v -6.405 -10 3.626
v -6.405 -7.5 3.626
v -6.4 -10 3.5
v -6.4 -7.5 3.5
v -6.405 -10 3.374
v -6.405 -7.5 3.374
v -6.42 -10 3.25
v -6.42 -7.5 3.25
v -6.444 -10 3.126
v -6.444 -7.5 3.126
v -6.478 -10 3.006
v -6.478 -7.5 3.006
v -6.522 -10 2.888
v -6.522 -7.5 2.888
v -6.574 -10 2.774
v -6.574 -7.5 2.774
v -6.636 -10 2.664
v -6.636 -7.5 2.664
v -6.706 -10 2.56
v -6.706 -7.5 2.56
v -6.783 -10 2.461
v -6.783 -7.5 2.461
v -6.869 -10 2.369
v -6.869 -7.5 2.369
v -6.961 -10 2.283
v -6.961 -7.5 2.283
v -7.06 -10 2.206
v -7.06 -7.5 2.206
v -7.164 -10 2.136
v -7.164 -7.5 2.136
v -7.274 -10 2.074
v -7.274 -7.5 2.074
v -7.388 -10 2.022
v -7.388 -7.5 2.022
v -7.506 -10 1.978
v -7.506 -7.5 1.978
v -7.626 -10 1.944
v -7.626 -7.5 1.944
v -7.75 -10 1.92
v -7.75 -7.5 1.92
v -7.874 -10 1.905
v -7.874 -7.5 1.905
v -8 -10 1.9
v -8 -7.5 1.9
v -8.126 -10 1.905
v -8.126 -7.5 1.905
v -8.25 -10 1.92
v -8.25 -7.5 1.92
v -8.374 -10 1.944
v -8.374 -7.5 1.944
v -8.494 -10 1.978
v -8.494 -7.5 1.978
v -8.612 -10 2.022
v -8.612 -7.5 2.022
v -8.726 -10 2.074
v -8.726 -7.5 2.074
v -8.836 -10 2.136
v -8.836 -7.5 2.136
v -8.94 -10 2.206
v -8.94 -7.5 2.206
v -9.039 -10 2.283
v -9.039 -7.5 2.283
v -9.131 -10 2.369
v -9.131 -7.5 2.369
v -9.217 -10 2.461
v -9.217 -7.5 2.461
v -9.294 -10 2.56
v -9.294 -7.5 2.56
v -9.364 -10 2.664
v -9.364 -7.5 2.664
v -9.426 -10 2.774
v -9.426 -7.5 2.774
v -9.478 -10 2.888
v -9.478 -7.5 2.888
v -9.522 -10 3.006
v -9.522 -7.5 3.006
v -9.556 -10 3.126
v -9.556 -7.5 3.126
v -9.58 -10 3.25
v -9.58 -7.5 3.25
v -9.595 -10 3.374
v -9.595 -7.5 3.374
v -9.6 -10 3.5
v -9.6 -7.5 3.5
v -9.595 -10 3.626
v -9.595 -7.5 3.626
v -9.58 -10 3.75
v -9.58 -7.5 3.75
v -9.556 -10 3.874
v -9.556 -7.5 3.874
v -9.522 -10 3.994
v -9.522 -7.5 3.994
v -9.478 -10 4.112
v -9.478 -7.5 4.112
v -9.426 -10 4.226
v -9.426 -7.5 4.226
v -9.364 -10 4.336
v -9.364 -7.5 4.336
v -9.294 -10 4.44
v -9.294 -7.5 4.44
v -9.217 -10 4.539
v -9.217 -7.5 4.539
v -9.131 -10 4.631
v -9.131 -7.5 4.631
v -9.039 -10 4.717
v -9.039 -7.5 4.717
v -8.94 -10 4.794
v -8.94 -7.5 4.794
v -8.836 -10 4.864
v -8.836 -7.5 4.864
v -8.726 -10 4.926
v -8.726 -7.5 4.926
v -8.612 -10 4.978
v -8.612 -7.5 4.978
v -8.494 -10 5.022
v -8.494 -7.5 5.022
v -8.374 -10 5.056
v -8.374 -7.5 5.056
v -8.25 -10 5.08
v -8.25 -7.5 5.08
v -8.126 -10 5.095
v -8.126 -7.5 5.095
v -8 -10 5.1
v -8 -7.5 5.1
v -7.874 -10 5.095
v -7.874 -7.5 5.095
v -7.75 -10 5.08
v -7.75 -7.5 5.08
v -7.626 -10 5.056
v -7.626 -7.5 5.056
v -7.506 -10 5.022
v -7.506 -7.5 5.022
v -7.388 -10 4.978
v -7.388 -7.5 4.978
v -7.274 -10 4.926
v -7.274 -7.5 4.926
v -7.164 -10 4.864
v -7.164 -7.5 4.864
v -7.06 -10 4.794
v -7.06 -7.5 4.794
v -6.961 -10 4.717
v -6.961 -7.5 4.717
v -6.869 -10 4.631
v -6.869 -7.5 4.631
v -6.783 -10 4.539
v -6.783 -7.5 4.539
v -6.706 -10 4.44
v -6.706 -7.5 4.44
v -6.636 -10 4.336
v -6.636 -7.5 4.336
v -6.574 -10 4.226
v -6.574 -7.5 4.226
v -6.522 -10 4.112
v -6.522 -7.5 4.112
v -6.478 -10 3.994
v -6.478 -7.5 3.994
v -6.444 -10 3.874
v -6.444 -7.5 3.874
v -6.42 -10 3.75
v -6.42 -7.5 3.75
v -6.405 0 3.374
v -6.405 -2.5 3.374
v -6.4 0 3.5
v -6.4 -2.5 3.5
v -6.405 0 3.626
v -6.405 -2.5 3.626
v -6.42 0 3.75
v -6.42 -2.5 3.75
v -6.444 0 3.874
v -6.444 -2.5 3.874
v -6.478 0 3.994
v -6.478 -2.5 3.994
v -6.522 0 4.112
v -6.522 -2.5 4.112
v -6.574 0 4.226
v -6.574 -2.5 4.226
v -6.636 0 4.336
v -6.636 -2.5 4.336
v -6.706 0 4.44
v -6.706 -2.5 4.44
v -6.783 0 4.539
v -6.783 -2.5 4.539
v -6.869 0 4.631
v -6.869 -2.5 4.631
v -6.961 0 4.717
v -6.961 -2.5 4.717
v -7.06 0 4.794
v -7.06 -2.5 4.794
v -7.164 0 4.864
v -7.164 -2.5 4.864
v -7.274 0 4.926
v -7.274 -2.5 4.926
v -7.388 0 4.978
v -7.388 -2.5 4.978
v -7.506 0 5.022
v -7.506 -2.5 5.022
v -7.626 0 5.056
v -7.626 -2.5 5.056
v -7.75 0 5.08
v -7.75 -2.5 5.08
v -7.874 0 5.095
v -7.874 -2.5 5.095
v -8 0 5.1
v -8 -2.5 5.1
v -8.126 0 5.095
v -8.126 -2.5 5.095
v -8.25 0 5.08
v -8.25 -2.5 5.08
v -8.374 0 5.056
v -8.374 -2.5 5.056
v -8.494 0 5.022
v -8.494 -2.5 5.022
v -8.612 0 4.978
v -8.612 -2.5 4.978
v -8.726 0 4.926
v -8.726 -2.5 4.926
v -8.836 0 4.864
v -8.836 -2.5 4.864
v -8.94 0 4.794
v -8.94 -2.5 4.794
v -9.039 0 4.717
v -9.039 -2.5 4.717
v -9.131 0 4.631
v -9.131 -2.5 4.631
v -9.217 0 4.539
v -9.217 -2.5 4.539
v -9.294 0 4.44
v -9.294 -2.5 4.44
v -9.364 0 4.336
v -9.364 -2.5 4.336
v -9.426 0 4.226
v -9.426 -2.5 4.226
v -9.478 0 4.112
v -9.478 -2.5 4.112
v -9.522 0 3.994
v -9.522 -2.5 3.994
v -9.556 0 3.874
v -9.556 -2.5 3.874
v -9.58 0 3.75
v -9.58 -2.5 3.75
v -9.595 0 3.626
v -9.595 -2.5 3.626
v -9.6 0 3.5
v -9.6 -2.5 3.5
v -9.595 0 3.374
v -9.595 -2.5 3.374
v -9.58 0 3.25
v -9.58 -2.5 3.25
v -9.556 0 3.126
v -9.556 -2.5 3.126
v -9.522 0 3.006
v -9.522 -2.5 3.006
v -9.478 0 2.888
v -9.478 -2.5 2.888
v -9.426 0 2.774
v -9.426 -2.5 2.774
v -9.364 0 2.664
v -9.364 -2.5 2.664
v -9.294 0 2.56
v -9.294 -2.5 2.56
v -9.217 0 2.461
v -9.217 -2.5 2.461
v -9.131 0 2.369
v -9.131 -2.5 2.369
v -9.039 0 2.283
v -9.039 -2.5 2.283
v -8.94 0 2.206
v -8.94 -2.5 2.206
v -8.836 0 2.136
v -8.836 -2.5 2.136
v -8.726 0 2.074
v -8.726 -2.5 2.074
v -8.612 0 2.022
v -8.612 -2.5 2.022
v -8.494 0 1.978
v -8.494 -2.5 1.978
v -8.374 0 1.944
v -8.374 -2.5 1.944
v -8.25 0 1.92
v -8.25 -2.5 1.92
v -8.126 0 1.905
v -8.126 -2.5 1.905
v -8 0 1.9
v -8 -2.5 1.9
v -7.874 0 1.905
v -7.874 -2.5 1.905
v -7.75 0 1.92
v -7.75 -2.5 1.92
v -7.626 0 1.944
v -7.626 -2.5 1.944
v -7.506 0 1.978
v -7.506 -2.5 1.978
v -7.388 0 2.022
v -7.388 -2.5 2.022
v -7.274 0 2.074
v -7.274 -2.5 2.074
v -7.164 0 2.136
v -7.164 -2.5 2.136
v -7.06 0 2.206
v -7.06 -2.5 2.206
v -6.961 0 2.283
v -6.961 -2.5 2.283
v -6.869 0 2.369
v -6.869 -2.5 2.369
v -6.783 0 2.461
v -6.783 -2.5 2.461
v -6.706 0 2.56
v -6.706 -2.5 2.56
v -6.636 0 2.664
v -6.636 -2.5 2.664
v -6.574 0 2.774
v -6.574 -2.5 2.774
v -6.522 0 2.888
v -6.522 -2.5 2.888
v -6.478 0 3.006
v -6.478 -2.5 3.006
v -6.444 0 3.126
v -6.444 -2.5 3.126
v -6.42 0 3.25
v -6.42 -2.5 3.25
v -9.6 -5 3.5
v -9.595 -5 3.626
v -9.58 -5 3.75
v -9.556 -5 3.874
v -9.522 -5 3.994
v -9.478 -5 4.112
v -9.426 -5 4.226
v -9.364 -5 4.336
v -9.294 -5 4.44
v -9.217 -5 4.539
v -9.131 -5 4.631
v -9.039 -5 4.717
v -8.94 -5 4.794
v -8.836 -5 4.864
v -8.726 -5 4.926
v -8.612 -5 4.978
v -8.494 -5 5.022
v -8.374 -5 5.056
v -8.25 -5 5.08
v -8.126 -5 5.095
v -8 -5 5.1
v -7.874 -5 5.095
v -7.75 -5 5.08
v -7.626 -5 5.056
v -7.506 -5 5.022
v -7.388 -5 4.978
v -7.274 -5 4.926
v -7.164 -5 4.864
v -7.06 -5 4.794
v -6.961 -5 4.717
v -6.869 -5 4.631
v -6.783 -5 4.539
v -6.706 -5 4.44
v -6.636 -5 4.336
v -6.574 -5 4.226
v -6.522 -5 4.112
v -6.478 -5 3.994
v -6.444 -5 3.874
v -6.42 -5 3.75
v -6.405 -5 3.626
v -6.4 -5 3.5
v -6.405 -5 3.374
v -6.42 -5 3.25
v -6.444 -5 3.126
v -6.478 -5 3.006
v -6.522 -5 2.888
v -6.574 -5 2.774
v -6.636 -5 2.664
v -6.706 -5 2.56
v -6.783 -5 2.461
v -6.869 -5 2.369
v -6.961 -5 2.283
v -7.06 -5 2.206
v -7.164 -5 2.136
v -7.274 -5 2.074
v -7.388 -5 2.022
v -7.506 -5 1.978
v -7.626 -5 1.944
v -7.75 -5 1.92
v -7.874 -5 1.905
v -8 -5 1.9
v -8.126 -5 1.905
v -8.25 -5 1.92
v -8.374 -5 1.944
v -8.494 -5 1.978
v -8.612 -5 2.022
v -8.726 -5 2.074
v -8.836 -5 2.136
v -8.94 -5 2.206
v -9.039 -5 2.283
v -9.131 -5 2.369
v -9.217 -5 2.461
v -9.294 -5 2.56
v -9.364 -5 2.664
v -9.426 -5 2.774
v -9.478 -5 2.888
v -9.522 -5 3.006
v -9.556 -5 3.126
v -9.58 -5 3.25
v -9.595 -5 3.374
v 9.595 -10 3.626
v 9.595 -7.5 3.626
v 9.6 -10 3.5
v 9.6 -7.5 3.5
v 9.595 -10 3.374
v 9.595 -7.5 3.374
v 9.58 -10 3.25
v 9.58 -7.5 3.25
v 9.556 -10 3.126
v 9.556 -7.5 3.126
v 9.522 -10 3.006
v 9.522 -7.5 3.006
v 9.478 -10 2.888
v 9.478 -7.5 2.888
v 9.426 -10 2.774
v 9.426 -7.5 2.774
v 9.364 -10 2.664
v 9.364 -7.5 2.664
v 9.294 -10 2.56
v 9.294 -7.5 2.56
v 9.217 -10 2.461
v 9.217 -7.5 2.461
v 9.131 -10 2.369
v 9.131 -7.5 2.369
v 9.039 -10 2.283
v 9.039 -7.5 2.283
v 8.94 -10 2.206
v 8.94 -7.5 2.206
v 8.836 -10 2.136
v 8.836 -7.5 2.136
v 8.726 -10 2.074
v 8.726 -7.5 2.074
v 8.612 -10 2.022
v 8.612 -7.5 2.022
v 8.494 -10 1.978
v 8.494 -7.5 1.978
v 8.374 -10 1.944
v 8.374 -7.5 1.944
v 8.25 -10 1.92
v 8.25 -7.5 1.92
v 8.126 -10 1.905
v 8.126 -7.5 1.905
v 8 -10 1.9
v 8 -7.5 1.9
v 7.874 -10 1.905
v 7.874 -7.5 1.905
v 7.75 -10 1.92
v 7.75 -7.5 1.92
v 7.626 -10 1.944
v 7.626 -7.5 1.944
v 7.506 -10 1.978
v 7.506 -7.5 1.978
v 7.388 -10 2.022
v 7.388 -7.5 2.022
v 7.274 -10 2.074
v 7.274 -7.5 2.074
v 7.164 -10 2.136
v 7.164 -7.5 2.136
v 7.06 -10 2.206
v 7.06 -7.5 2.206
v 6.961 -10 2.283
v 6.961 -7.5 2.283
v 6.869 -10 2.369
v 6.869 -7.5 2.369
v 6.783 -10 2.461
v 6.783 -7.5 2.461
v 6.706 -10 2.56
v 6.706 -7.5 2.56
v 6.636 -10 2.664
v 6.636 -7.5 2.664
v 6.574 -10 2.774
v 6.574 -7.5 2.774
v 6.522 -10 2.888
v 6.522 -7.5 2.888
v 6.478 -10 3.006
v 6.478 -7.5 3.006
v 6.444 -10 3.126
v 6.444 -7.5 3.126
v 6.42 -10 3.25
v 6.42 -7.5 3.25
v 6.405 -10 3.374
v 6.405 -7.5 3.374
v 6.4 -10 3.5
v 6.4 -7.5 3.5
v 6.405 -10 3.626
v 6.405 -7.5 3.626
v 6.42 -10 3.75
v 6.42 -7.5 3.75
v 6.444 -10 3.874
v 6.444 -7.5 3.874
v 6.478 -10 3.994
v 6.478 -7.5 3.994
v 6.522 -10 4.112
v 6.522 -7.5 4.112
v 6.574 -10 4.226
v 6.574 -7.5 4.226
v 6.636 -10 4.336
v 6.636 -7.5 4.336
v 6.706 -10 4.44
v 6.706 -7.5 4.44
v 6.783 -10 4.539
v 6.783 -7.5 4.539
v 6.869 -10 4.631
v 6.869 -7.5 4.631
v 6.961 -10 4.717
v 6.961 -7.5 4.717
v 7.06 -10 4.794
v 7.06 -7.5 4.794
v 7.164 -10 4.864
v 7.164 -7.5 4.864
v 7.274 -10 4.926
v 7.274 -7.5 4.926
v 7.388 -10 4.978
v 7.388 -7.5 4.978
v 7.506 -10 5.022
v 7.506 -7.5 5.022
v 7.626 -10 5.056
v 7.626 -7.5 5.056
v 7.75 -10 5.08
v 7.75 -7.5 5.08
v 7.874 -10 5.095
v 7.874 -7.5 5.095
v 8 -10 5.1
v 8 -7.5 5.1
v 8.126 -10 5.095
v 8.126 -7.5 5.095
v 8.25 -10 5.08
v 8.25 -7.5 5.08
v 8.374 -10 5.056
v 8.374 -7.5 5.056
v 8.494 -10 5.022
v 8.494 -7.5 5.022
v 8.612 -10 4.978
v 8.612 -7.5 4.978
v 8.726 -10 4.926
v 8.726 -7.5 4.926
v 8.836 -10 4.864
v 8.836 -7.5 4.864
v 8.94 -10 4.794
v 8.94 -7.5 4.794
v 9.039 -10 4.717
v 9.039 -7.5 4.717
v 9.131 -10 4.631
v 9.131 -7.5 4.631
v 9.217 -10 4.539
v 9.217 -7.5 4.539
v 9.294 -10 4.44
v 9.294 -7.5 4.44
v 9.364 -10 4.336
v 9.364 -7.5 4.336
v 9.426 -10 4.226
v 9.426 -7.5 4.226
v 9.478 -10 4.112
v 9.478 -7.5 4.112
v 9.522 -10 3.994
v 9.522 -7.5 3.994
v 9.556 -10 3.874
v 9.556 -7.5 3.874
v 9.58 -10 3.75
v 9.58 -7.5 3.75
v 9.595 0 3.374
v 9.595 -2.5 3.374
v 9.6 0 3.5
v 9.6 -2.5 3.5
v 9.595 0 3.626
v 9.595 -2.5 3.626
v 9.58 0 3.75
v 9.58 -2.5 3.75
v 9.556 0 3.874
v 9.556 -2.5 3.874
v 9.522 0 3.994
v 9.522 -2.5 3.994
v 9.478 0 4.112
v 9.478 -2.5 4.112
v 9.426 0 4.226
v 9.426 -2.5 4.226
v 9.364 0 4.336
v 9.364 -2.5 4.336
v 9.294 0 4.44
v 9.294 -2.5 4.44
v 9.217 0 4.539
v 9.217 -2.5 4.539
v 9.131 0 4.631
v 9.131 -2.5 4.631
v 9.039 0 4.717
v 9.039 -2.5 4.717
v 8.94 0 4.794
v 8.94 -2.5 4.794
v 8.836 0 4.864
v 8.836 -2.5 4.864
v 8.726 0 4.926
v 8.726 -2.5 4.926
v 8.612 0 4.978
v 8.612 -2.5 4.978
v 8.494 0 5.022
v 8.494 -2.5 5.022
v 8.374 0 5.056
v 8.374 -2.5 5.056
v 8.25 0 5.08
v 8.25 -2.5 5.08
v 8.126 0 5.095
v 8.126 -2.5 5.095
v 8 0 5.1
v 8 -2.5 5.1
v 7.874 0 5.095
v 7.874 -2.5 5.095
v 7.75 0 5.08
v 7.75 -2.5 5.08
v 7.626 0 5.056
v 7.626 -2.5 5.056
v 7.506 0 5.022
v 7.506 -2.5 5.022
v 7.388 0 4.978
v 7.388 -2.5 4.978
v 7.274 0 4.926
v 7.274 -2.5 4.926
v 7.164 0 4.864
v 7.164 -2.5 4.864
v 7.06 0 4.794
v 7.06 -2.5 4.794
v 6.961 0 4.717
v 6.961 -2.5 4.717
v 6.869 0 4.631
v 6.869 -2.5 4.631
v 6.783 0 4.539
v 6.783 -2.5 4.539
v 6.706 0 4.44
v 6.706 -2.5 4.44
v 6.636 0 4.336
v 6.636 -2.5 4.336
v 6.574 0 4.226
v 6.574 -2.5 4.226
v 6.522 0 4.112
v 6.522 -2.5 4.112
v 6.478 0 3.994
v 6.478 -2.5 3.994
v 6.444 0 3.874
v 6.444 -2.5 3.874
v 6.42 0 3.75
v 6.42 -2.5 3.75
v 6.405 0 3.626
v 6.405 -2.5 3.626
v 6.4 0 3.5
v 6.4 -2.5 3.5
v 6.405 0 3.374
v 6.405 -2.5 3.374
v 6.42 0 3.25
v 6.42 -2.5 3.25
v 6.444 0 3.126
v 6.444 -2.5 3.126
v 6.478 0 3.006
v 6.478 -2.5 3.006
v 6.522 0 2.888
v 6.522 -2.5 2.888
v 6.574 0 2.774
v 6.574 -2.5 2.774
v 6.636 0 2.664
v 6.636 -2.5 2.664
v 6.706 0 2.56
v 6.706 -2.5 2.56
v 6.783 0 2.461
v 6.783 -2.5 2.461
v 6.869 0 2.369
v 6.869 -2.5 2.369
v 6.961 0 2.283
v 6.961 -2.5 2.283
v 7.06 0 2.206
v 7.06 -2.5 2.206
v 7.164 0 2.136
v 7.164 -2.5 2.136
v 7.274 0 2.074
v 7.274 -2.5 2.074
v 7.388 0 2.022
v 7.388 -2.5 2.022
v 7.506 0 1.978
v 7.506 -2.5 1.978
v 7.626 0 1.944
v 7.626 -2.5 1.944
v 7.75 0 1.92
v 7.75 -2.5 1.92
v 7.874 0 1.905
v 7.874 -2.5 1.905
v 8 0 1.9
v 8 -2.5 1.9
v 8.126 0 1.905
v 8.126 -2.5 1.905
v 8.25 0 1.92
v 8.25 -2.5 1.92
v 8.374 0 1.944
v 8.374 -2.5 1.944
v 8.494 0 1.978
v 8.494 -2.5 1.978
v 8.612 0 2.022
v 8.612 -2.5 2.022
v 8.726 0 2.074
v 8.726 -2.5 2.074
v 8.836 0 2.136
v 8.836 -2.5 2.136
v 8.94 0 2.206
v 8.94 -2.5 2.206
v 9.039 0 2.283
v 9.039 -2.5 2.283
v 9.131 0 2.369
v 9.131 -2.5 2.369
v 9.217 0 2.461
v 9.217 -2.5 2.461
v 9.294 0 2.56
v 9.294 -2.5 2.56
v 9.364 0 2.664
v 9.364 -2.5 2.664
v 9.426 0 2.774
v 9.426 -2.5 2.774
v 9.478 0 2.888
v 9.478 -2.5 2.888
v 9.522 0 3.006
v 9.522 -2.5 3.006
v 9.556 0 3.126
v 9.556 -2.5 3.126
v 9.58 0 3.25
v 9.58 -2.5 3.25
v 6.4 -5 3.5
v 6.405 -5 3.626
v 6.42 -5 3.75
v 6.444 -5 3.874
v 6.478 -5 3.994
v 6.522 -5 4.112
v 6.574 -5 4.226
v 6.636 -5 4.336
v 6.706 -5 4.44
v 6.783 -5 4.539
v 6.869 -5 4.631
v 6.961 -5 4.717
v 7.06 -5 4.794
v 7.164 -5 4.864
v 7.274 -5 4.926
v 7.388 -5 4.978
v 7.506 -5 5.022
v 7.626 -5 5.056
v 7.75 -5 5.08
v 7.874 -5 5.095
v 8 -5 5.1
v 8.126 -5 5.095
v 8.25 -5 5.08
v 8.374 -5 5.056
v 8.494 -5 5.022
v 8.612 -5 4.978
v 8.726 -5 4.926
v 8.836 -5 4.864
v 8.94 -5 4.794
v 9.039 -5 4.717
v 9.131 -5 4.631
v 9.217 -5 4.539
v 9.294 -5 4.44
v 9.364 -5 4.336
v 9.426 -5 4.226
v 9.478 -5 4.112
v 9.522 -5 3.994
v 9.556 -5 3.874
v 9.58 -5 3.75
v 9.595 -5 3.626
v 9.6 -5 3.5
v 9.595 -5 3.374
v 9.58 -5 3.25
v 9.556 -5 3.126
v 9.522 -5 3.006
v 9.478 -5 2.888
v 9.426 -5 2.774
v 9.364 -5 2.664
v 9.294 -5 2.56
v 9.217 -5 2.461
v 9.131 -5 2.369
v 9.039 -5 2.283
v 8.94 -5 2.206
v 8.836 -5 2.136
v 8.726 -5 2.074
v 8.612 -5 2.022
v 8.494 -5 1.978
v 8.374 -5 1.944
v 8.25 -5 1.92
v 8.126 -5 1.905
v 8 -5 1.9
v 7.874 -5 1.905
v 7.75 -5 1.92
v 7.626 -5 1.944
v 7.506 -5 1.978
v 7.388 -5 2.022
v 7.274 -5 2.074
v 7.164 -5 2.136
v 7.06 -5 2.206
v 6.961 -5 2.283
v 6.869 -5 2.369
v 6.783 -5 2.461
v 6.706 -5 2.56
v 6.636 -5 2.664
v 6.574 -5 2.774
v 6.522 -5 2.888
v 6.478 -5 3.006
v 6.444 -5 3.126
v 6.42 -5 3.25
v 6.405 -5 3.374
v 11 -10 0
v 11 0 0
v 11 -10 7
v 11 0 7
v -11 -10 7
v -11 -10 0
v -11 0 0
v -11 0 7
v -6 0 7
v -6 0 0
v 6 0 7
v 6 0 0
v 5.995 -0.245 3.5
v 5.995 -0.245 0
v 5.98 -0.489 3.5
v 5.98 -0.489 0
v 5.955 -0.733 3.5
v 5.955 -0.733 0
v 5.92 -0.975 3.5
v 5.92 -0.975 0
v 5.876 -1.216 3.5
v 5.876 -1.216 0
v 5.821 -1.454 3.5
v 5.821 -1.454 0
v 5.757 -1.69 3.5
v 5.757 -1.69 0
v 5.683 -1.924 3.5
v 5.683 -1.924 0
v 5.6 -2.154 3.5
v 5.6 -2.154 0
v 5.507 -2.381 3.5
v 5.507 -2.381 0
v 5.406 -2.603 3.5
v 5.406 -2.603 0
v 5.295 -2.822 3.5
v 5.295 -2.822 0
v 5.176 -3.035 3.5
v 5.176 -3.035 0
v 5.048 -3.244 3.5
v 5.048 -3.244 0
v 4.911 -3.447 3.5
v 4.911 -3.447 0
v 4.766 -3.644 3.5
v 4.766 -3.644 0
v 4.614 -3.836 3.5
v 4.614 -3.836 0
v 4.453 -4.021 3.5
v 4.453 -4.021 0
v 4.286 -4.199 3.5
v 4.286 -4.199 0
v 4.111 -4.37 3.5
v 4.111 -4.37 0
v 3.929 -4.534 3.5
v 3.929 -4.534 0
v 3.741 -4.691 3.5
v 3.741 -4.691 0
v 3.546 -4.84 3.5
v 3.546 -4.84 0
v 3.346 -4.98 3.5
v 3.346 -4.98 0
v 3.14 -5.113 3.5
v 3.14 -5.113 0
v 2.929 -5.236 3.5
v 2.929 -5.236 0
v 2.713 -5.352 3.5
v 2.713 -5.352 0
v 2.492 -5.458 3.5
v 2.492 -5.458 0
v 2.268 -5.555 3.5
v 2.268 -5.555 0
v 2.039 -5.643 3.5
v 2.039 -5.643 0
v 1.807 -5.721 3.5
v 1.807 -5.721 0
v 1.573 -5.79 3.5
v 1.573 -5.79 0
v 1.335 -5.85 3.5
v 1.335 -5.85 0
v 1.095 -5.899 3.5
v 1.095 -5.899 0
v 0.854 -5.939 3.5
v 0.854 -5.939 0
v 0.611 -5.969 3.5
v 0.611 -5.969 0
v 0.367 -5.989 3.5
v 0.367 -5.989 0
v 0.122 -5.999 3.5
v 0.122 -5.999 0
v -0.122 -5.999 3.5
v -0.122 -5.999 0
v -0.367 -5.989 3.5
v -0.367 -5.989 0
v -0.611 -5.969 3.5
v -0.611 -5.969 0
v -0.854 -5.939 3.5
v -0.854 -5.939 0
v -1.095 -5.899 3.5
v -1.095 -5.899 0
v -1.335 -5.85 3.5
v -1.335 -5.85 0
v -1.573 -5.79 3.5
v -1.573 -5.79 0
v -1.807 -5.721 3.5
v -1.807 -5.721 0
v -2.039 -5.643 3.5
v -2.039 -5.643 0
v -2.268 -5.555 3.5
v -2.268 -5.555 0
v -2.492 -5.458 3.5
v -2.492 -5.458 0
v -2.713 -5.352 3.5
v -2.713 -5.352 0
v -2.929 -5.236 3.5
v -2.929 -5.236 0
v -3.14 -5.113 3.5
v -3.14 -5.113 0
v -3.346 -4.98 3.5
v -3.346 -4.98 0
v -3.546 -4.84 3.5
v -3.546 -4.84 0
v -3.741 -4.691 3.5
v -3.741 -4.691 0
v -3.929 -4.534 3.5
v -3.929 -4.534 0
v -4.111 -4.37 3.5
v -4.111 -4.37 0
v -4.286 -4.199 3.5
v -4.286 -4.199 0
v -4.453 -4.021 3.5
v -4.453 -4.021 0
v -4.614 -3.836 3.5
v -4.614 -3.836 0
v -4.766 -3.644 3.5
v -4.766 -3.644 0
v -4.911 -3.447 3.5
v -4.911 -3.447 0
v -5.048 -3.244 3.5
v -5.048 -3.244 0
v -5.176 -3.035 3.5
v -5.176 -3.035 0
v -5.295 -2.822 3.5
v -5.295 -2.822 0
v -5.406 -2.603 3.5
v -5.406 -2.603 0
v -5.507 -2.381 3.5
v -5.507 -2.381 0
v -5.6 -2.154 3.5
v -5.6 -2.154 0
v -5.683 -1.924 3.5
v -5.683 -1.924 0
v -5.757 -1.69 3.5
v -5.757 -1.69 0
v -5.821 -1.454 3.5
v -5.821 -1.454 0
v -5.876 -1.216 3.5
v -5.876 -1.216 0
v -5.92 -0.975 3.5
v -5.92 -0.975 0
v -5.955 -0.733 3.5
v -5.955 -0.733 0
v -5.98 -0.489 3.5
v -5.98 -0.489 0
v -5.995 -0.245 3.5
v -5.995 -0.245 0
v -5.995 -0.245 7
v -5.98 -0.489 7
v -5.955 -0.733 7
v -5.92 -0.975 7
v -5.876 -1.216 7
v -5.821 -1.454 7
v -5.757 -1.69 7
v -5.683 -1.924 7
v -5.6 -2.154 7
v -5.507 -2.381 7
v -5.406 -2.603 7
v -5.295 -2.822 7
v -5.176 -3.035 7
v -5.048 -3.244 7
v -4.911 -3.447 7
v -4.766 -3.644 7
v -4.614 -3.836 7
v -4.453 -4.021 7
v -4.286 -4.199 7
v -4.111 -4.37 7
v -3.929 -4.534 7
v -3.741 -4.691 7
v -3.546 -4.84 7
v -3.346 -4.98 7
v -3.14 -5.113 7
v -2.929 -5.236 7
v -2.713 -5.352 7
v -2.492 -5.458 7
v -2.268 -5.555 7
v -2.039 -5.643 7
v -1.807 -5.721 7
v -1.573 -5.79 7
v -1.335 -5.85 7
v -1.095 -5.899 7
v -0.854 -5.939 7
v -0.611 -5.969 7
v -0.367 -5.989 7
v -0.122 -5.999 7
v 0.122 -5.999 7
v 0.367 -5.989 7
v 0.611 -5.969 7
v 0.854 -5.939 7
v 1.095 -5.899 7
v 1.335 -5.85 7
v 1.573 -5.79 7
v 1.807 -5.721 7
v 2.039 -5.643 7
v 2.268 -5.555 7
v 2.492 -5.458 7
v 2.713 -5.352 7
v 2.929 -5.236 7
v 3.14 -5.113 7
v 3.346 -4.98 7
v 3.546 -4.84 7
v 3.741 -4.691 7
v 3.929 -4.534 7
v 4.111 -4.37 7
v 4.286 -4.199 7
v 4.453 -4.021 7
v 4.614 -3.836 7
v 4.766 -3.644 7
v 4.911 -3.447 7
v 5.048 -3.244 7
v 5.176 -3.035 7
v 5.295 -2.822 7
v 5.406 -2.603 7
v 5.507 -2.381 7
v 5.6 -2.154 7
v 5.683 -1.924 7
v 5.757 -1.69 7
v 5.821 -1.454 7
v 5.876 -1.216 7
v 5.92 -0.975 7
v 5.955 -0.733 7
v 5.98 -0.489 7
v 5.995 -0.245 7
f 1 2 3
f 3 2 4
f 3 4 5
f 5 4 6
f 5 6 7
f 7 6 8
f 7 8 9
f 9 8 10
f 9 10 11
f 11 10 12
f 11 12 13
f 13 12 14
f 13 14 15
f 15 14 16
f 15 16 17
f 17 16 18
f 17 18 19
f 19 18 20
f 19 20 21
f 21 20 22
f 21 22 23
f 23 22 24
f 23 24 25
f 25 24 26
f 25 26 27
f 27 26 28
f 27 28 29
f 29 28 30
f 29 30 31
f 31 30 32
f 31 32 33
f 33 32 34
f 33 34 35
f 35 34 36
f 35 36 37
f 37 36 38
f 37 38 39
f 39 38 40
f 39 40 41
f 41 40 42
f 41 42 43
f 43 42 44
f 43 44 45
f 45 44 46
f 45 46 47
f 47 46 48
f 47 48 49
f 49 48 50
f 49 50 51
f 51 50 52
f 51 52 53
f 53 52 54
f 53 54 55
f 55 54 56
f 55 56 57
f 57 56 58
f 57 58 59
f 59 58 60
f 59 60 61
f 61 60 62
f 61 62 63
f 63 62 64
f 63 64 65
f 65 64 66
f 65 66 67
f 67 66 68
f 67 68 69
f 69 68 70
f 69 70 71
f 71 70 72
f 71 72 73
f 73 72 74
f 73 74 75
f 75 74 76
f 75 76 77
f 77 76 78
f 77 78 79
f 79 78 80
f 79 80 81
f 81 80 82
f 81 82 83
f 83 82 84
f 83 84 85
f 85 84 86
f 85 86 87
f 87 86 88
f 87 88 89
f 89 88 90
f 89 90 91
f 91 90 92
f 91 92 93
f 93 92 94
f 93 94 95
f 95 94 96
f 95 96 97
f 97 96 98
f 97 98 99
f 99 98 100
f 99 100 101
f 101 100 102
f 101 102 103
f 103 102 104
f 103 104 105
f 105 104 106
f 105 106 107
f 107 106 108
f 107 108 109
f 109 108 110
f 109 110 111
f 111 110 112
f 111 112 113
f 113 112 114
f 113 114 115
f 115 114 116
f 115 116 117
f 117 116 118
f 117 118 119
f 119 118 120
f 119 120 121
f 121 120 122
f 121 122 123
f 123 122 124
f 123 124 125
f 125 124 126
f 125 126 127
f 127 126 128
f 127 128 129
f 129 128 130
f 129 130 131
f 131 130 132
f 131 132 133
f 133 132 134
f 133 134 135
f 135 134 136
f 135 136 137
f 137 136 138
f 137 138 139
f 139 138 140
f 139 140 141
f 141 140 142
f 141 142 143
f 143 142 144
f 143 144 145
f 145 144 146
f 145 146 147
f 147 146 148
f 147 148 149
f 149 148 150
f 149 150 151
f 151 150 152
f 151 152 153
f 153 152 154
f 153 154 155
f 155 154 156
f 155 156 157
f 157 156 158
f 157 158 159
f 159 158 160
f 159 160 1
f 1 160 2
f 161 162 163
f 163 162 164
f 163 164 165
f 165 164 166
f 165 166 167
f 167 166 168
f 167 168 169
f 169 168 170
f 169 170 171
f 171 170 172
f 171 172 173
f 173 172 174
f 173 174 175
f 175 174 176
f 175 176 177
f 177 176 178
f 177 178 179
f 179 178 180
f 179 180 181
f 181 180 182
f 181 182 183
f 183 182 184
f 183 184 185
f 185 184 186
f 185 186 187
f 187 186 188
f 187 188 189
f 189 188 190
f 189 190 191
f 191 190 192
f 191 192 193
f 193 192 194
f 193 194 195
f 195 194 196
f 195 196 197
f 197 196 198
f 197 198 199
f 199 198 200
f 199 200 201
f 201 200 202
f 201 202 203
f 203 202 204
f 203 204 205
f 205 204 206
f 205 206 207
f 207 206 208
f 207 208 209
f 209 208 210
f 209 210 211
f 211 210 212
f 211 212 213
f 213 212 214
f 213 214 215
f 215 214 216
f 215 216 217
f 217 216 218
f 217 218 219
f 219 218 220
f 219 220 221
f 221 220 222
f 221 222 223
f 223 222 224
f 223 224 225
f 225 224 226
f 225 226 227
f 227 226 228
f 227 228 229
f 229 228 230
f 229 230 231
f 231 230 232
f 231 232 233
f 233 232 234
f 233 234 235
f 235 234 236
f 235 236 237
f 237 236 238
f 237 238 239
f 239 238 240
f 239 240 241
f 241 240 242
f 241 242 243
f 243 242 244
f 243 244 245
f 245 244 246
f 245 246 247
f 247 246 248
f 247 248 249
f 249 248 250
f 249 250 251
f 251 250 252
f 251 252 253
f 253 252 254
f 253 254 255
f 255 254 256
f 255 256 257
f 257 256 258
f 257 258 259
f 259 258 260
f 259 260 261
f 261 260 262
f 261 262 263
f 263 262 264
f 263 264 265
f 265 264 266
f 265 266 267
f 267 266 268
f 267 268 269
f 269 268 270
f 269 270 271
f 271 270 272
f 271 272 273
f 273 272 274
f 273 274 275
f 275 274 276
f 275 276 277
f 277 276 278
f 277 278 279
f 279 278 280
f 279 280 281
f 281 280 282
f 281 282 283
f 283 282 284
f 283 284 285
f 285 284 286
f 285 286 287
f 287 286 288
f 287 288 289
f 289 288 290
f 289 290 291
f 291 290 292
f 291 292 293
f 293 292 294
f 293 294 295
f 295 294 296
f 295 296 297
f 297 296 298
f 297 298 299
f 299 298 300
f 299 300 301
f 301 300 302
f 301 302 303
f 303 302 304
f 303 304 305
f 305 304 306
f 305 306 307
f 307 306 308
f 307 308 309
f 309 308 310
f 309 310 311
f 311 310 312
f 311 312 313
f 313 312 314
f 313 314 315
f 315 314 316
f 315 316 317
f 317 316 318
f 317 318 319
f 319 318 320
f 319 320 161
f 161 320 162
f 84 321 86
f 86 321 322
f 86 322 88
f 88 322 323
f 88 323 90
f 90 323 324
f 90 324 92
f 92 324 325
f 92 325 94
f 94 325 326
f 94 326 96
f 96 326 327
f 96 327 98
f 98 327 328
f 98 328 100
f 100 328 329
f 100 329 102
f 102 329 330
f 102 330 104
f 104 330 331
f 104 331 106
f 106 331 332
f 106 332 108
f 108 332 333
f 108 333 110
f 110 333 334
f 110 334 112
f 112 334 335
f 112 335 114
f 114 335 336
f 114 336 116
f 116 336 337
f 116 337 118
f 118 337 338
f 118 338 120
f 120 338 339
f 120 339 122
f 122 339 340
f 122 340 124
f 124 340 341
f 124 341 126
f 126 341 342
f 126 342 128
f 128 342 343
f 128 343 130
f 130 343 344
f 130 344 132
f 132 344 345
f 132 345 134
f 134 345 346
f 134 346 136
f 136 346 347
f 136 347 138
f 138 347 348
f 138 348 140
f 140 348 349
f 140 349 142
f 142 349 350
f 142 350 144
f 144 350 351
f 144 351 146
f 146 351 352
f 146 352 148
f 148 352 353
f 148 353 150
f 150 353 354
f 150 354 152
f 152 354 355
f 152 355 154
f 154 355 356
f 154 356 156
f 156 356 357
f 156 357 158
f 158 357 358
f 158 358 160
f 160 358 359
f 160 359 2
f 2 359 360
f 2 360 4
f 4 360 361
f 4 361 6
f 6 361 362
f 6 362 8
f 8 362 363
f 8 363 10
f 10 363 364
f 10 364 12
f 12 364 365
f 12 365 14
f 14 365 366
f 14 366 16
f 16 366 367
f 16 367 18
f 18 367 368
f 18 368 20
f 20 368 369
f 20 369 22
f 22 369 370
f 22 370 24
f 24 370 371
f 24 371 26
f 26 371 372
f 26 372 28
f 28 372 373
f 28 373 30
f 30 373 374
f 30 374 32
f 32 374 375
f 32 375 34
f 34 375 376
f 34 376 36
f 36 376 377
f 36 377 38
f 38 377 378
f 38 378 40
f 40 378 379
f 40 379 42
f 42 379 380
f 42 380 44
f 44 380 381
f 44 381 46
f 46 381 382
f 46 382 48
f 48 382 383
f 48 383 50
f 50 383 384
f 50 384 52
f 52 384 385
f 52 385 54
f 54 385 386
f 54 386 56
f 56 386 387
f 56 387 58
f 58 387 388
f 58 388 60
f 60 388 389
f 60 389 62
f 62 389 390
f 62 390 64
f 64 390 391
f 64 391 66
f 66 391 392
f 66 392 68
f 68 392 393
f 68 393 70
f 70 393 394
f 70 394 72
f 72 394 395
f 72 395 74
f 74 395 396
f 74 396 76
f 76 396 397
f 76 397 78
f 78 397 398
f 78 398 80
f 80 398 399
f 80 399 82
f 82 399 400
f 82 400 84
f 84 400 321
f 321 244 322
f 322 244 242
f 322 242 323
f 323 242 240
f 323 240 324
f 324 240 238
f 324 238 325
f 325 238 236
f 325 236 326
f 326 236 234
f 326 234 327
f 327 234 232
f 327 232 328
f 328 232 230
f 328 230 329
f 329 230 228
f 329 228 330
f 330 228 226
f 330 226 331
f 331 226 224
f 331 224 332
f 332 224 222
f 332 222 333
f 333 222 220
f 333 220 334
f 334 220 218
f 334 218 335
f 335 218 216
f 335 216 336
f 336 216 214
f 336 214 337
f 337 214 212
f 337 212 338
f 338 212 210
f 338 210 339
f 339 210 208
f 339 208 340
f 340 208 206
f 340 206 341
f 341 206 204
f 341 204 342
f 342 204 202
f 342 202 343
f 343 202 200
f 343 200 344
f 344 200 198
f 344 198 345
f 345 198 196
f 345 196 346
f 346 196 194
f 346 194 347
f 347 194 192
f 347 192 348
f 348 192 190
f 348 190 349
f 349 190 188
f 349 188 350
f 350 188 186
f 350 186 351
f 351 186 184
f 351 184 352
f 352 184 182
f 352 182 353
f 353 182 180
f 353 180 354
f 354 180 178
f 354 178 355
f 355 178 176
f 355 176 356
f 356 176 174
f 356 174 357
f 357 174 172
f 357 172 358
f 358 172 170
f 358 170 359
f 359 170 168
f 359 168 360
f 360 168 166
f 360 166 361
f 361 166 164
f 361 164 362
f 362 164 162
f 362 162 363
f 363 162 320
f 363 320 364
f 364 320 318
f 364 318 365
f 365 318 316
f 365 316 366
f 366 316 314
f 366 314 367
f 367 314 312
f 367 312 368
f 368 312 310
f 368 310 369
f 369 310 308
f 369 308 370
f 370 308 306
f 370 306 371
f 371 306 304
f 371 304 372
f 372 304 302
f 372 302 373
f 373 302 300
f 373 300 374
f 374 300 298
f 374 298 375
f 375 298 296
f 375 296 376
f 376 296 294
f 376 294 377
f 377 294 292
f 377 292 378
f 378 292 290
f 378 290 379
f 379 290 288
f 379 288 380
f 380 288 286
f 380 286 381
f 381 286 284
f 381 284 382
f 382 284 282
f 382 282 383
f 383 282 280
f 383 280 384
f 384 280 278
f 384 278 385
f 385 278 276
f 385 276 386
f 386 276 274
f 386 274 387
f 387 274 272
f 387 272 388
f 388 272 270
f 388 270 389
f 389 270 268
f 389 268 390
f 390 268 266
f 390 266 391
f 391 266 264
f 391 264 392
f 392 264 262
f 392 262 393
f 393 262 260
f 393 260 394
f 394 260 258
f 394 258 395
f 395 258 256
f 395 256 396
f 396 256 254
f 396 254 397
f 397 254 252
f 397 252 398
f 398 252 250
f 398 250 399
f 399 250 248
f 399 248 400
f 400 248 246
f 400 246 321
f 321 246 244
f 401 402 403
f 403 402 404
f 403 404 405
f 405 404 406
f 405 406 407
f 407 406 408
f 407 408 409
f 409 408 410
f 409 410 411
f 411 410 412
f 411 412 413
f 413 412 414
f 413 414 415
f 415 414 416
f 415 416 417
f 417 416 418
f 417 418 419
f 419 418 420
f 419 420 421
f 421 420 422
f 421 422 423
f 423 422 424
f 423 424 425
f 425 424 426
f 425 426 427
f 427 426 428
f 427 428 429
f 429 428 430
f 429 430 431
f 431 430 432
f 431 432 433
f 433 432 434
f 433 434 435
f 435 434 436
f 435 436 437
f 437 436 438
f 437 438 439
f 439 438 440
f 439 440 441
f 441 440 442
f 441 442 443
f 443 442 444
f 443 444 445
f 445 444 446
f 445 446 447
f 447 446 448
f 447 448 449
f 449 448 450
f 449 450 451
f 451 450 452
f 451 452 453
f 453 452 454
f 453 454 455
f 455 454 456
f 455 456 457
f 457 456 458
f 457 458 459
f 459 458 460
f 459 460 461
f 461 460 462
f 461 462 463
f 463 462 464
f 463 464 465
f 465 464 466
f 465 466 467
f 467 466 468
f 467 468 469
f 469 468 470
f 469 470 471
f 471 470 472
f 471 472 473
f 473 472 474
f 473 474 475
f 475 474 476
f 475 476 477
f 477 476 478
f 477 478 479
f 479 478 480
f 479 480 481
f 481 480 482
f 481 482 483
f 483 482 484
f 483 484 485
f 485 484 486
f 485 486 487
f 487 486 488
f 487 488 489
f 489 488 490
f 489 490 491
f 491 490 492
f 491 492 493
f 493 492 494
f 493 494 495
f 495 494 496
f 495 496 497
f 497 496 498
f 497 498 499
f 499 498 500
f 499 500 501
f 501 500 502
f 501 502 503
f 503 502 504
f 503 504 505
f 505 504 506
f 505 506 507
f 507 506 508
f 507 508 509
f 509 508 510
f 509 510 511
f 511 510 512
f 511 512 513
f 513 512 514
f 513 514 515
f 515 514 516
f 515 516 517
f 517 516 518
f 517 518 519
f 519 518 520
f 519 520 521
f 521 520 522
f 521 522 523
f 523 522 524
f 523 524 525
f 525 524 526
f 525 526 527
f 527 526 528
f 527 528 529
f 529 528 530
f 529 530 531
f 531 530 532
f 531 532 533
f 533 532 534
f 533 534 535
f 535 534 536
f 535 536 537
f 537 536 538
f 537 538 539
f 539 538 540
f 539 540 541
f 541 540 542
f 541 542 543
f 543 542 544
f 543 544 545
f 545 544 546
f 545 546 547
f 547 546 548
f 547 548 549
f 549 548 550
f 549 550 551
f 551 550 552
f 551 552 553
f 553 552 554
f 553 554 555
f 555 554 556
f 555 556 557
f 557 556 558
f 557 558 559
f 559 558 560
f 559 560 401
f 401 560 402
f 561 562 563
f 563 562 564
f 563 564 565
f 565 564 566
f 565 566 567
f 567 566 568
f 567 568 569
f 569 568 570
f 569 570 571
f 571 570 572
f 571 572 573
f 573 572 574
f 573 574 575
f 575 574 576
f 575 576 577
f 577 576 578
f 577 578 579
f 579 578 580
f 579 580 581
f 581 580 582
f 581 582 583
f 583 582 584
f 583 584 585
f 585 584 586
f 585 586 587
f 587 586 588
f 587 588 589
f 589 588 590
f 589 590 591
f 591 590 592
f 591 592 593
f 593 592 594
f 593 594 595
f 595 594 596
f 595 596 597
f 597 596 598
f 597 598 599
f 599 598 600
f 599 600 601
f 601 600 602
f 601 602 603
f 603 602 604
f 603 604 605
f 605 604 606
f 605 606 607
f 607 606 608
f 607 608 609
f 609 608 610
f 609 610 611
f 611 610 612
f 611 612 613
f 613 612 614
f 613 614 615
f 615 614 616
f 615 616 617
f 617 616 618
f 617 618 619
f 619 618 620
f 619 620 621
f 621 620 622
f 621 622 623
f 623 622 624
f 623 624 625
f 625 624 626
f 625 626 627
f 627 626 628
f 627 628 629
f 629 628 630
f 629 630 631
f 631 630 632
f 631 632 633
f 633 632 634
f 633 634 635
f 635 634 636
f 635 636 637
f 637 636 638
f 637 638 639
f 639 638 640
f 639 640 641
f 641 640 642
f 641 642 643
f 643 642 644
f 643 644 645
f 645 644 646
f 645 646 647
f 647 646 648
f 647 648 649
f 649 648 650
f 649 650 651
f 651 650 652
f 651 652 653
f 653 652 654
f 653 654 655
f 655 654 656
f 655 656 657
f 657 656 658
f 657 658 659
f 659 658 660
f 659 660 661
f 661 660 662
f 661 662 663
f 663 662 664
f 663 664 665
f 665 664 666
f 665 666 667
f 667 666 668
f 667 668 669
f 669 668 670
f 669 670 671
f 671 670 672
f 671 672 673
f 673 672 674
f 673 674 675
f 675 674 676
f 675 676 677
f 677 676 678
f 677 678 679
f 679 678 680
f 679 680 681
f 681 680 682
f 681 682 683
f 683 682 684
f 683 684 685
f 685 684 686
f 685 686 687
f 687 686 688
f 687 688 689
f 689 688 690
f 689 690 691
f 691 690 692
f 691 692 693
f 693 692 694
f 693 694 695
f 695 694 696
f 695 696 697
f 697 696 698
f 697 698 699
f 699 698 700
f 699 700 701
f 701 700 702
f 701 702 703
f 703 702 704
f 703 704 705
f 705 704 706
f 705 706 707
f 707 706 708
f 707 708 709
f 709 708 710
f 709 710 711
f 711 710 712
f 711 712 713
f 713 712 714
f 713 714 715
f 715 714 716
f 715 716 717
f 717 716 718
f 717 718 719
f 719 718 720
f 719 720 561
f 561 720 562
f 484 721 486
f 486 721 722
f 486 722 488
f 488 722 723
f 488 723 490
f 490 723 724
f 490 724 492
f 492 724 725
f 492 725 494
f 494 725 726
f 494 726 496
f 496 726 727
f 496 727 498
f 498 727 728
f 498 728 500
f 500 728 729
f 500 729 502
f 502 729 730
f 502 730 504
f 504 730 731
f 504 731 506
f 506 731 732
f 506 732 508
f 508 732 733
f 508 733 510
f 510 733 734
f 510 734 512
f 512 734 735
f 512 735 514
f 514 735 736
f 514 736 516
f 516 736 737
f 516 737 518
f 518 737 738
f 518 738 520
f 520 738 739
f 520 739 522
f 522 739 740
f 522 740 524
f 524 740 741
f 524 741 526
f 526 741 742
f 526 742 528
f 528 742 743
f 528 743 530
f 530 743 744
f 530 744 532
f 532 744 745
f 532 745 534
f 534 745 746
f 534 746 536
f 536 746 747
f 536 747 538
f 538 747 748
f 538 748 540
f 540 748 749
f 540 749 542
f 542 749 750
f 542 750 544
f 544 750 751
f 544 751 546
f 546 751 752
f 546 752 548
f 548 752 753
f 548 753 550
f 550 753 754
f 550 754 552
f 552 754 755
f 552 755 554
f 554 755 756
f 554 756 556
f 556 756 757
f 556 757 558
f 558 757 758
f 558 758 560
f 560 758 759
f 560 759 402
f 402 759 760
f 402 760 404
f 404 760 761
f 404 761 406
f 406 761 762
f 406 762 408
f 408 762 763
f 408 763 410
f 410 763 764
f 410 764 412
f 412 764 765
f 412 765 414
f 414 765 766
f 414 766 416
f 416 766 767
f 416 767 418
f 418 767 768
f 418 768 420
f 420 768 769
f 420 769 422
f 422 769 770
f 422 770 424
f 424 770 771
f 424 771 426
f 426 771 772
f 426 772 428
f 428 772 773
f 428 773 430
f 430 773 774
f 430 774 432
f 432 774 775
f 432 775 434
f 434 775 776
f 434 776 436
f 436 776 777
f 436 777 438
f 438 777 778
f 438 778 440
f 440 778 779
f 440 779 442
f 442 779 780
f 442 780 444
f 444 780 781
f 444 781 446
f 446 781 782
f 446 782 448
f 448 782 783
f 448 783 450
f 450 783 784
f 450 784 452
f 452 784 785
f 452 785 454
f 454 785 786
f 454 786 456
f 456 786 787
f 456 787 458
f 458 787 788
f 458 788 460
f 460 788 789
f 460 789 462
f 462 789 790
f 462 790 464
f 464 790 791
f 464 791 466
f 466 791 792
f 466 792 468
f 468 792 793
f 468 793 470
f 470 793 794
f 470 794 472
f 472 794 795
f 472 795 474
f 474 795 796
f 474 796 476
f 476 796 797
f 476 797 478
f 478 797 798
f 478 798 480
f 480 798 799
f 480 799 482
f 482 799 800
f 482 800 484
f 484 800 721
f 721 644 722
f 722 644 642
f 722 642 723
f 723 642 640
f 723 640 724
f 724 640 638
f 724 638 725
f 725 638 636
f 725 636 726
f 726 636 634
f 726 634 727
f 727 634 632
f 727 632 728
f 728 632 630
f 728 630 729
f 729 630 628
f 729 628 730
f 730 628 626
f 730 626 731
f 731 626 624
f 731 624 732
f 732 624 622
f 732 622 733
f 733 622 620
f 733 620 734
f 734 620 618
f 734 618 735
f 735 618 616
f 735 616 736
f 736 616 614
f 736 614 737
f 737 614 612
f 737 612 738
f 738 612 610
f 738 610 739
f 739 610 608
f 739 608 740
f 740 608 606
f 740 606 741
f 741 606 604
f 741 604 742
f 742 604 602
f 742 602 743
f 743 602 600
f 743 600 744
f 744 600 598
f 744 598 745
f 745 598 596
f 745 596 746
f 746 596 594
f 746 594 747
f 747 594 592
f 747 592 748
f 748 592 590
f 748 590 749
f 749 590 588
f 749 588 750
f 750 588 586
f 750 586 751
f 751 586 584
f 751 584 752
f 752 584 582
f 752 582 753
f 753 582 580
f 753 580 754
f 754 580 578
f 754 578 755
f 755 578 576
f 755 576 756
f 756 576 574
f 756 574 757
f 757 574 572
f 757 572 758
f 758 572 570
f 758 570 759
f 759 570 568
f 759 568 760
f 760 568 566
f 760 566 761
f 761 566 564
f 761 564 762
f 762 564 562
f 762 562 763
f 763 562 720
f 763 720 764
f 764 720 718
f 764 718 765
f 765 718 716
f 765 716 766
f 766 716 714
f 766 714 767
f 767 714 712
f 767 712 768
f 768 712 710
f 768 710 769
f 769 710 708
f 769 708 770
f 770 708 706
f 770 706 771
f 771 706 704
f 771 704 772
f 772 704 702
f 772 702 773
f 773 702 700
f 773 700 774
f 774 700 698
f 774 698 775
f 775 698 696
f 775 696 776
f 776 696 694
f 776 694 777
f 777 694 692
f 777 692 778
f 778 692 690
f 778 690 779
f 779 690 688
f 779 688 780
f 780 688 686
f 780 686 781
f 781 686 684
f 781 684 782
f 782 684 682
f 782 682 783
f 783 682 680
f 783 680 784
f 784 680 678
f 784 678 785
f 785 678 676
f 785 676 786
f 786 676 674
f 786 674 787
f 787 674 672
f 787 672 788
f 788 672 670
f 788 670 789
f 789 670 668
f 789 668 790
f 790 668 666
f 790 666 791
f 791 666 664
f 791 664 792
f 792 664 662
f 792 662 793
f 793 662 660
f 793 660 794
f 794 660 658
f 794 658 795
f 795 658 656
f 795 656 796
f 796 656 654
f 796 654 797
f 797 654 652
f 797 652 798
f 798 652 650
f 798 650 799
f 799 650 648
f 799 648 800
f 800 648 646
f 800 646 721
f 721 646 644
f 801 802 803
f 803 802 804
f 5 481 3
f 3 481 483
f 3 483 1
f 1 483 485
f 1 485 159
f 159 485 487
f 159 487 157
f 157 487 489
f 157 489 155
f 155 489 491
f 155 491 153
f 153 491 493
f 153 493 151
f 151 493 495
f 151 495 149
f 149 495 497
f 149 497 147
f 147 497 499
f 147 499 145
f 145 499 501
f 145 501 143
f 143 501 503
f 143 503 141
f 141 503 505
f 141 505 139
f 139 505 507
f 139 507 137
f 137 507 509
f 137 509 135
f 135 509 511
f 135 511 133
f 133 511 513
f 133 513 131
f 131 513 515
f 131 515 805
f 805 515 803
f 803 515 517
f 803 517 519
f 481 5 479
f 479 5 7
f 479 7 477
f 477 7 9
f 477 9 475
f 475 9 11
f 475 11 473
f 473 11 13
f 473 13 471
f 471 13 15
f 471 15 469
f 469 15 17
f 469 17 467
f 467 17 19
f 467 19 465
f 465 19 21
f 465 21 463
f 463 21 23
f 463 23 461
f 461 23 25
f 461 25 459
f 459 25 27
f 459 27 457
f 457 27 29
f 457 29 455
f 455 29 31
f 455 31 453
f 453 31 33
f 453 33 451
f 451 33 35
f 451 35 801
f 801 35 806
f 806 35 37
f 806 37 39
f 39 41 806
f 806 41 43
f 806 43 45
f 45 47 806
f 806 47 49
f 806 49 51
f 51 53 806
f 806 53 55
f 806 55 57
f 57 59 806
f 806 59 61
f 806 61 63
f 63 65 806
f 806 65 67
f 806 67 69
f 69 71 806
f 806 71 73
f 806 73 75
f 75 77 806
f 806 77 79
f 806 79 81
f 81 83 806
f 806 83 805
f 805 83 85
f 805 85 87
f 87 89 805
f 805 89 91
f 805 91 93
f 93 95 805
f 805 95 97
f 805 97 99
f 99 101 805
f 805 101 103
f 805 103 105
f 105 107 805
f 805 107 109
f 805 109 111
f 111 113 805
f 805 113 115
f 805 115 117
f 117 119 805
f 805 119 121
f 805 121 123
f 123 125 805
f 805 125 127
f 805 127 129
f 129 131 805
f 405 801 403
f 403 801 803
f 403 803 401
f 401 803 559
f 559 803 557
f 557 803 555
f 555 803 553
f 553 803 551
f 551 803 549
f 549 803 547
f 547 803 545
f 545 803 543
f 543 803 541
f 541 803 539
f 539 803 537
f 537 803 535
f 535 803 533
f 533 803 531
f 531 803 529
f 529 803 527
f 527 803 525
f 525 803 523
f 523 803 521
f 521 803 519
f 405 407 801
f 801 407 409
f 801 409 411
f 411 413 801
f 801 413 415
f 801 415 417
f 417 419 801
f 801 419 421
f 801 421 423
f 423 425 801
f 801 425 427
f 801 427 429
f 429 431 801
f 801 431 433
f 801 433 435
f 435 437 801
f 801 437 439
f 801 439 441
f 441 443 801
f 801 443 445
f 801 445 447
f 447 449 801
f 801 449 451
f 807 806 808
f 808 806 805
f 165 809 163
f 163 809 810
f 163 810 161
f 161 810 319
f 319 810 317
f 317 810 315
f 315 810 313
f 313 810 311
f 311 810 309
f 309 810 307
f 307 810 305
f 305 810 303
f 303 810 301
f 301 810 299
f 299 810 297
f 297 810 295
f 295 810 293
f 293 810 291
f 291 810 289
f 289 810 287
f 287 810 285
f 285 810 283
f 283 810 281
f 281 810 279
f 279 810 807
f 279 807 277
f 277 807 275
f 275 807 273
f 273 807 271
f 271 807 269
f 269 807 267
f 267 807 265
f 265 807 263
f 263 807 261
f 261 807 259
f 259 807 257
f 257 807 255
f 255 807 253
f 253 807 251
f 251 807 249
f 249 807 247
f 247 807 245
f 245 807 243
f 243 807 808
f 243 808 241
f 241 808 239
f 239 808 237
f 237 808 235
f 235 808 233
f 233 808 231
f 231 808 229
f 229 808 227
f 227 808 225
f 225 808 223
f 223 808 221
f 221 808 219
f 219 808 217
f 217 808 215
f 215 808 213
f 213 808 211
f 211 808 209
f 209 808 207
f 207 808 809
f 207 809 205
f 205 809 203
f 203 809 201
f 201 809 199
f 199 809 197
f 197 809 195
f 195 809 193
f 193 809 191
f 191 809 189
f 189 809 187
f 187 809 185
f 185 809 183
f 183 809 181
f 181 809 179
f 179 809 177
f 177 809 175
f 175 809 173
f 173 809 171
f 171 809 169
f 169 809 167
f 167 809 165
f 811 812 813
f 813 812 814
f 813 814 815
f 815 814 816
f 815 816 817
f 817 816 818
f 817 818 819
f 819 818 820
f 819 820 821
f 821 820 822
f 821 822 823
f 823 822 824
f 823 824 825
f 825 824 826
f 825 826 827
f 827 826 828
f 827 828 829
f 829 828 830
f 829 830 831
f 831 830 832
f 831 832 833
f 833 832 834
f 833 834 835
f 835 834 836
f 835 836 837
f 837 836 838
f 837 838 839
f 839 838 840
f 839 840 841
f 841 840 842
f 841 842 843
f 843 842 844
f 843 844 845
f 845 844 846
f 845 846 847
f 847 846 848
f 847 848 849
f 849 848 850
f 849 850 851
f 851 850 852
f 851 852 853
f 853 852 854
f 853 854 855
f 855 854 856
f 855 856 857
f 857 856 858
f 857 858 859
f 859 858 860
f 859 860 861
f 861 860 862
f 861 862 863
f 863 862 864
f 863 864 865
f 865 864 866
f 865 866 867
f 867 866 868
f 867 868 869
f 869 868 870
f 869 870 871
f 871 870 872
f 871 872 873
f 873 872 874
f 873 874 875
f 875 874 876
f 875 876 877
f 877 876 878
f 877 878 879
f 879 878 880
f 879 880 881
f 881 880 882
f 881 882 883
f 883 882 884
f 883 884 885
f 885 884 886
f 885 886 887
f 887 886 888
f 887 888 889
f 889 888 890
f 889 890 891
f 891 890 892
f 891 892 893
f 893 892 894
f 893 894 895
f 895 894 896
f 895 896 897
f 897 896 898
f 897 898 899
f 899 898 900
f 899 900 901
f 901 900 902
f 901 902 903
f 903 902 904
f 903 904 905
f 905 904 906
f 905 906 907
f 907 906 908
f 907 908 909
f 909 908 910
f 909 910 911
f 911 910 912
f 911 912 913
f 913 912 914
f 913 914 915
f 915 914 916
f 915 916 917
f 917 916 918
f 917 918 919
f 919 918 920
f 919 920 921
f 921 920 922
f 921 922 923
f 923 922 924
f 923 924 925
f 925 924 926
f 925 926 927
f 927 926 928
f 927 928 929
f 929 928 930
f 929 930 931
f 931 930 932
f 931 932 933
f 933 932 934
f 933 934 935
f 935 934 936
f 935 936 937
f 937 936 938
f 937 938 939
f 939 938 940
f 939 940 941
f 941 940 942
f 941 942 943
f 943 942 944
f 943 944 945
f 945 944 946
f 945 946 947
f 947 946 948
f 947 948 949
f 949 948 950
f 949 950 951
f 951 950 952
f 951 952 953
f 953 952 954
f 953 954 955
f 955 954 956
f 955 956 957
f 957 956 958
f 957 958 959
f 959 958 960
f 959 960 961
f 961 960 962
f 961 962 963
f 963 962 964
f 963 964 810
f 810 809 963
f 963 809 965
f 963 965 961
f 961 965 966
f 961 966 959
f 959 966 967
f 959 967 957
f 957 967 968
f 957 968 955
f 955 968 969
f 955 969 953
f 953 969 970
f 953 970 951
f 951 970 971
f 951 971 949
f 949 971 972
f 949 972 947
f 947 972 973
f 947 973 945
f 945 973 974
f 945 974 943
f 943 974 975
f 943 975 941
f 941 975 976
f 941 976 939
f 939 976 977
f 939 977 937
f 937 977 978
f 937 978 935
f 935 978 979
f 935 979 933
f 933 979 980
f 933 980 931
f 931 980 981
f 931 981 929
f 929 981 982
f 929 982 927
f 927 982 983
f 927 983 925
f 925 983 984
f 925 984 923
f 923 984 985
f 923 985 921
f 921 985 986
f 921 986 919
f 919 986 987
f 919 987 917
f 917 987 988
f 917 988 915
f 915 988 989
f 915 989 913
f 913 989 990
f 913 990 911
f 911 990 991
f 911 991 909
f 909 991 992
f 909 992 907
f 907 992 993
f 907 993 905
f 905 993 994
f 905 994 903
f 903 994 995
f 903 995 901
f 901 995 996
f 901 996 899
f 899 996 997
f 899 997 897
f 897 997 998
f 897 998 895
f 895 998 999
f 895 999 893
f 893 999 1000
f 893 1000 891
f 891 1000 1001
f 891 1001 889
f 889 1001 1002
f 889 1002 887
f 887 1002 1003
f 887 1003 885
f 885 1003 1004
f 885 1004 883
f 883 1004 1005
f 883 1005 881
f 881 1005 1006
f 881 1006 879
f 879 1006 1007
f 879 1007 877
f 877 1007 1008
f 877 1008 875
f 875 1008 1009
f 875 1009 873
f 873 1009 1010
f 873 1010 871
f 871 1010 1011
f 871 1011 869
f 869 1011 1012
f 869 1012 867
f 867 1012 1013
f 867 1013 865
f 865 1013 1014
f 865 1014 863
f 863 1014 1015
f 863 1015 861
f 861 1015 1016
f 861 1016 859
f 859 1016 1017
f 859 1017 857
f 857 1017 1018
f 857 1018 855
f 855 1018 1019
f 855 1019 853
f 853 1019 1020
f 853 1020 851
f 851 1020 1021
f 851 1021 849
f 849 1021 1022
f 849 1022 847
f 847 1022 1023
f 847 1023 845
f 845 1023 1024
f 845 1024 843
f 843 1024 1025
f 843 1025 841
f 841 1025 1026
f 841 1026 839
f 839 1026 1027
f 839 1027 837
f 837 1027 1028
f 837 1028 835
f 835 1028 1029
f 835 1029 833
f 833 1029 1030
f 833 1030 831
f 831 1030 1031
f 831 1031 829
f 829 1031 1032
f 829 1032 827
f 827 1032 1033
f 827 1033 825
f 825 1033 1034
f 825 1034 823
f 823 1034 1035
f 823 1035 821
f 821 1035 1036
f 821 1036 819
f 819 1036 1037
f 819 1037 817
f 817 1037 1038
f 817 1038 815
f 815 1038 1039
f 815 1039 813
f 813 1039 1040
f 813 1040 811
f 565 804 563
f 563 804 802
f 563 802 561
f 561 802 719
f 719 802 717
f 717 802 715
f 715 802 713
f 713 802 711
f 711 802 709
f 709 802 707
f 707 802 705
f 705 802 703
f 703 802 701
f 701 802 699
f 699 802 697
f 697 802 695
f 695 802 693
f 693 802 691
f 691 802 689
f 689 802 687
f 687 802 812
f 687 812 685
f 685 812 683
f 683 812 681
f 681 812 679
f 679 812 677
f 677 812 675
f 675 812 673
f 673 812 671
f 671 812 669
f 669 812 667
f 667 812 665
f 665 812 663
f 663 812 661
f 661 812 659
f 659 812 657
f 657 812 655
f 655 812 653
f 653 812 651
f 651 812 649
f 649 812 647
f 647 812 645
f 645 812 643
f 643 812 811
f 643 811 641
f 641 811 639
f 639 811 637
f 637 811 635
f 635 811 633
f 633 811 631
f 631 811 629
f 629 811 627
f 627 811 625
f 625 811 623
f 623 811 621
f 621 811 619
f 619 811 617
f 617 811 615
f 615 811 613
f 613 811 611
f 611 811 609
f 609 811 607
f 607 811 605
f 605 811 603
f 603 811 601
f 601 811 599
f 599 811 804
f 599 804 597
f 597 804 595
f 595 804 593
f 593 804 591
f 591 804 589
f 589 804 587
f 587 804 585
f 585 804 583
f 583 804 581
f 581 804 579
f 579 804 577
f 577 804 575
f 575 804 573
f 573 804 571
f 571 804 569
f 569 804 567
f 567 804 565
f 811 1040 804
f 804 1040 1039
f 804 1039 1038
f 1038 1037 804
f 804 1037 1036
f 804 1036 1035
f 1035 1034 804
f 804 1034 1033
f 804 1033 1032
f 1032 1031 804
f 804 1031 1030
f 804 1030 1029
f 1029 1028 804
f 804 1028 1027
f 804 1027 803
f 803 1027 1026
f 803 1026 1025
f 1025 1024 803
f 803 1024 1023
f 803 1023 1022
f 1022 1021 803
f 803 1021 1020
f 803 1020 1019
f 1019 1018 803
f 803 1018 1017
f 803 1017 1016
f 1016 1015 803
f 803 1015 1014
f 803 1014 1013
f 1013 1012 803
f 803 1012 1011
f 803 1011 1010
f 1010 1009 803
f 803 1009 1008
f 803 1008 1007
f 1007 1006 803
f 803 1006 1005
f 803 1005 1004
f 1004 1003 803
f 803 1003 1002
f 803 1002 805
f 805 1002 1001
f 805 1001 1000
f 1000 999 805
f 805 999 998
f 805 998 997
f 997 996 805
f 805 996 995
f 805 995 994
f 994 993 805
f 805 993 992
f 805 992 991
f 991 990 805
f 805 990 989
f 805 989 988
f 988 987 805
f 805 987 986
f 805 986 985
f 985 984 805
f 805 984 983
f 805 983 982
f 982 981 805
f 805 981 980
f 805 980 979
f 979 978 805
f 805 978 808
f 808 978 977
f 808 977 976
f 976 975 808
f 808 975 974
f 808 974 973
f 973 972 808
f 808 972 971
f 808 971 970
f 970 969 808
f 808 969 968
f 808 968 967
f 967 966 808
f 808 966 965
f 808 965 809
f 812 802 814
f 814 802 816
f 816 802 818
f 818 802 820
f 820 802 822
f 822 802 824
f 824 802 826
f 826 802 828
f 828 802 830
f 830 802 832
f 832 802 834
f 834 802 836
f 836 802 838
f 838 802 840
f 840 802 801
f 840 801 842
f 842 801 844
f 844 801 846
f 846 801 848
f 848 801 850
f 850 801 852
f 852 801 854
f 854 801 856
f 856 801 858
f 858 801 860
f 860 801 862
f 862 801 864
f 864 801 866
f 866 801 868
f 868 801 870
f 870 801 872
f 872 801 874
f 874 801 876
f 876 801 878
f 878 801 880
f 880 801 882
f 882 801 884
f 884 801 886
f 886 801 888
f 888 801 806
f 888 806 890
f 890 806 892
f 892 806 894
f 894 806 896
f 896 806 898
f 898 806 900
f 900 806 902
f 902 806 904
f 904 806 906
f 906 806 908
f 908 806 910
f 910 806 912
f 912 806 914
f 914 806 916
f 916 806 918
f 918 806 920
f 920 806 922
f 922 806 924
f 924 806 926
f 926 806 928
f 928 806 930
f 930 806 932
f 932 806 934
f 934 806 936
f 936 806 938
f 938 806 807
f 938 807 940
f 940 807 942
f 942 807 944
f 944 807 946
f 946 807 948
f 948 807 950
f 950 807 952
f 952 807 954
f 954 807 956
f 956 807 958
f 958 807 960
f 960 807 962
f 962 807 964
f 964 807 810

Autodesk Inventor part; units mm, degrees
ref_plane "YZ Plane" through (0, 0, 0) normal (1, 0, 0) x (0, 1, 0)
ref_plane "XZ Plane" through (0, 0, 0) normal (0, 1, 0) x (-1, 0, 0)
ref_plane "XY Plane" through (0, 0, 0) normal (0, 0, 1) x (1, 0, 0)
sketch "Sketch2" plane through (0, 0, 0) normal (0, 0, 1) x (1, 0, 0)
  circle A0 centre (0, 0) radius 6
  line L0 (-11, 0) -> (11, 0)
  line L1 (11, 0) -> (11, -10)
  line L2 (11, -10) -> (-11, -10)
  line L3 (-11, -10) -> (-11, 0)
  circle A1 centre (0, 0) radius 9
  point P0 (6, 0)
  point P1 (-6, 0)
  dimension "d0" = 12
  dimension "d1" = 11
  dimension "d2" = 11
  dimension "d3" = 10
  dimension "d4" = 3
extrude "Extrusion1" add sketch "Sketch2" along normal blind 7 contours L0 A1 A0 | L0 L1 L2 L3 A1 picked at (-7.9128, -0.7179)
sketch "Sketch3" plane through (6, 0, 0) normal (0, 1, 0) x (1, 0, 0)
  circle A0 centre (2, -3.5) radius 1.6
  line L0 (5, 0) -> (5, -7) projected
  line L1 (5, 0) -> (0, 0) projected
  circle A1 centre (-14, -3.5) radius 1.6
  line L2 (-17, 0) -> (-17, -7) projected
  line L3 (-12, 0) -> (-17, 0) projected
  point P0 (-6, 0)
  dimension "d7" = 3.2
  dimension "d8" = 3
  dimension "d9" = 3.5
  dimension "d10" = 3.2
  dimension "d11" = 3
  dimension "d12" = 3.5
extrude "Extrusion2" cut sketch "Sketch3" against normal blind 10
equation "\"d2\" = d1"
properties part number "Tube_mount"
